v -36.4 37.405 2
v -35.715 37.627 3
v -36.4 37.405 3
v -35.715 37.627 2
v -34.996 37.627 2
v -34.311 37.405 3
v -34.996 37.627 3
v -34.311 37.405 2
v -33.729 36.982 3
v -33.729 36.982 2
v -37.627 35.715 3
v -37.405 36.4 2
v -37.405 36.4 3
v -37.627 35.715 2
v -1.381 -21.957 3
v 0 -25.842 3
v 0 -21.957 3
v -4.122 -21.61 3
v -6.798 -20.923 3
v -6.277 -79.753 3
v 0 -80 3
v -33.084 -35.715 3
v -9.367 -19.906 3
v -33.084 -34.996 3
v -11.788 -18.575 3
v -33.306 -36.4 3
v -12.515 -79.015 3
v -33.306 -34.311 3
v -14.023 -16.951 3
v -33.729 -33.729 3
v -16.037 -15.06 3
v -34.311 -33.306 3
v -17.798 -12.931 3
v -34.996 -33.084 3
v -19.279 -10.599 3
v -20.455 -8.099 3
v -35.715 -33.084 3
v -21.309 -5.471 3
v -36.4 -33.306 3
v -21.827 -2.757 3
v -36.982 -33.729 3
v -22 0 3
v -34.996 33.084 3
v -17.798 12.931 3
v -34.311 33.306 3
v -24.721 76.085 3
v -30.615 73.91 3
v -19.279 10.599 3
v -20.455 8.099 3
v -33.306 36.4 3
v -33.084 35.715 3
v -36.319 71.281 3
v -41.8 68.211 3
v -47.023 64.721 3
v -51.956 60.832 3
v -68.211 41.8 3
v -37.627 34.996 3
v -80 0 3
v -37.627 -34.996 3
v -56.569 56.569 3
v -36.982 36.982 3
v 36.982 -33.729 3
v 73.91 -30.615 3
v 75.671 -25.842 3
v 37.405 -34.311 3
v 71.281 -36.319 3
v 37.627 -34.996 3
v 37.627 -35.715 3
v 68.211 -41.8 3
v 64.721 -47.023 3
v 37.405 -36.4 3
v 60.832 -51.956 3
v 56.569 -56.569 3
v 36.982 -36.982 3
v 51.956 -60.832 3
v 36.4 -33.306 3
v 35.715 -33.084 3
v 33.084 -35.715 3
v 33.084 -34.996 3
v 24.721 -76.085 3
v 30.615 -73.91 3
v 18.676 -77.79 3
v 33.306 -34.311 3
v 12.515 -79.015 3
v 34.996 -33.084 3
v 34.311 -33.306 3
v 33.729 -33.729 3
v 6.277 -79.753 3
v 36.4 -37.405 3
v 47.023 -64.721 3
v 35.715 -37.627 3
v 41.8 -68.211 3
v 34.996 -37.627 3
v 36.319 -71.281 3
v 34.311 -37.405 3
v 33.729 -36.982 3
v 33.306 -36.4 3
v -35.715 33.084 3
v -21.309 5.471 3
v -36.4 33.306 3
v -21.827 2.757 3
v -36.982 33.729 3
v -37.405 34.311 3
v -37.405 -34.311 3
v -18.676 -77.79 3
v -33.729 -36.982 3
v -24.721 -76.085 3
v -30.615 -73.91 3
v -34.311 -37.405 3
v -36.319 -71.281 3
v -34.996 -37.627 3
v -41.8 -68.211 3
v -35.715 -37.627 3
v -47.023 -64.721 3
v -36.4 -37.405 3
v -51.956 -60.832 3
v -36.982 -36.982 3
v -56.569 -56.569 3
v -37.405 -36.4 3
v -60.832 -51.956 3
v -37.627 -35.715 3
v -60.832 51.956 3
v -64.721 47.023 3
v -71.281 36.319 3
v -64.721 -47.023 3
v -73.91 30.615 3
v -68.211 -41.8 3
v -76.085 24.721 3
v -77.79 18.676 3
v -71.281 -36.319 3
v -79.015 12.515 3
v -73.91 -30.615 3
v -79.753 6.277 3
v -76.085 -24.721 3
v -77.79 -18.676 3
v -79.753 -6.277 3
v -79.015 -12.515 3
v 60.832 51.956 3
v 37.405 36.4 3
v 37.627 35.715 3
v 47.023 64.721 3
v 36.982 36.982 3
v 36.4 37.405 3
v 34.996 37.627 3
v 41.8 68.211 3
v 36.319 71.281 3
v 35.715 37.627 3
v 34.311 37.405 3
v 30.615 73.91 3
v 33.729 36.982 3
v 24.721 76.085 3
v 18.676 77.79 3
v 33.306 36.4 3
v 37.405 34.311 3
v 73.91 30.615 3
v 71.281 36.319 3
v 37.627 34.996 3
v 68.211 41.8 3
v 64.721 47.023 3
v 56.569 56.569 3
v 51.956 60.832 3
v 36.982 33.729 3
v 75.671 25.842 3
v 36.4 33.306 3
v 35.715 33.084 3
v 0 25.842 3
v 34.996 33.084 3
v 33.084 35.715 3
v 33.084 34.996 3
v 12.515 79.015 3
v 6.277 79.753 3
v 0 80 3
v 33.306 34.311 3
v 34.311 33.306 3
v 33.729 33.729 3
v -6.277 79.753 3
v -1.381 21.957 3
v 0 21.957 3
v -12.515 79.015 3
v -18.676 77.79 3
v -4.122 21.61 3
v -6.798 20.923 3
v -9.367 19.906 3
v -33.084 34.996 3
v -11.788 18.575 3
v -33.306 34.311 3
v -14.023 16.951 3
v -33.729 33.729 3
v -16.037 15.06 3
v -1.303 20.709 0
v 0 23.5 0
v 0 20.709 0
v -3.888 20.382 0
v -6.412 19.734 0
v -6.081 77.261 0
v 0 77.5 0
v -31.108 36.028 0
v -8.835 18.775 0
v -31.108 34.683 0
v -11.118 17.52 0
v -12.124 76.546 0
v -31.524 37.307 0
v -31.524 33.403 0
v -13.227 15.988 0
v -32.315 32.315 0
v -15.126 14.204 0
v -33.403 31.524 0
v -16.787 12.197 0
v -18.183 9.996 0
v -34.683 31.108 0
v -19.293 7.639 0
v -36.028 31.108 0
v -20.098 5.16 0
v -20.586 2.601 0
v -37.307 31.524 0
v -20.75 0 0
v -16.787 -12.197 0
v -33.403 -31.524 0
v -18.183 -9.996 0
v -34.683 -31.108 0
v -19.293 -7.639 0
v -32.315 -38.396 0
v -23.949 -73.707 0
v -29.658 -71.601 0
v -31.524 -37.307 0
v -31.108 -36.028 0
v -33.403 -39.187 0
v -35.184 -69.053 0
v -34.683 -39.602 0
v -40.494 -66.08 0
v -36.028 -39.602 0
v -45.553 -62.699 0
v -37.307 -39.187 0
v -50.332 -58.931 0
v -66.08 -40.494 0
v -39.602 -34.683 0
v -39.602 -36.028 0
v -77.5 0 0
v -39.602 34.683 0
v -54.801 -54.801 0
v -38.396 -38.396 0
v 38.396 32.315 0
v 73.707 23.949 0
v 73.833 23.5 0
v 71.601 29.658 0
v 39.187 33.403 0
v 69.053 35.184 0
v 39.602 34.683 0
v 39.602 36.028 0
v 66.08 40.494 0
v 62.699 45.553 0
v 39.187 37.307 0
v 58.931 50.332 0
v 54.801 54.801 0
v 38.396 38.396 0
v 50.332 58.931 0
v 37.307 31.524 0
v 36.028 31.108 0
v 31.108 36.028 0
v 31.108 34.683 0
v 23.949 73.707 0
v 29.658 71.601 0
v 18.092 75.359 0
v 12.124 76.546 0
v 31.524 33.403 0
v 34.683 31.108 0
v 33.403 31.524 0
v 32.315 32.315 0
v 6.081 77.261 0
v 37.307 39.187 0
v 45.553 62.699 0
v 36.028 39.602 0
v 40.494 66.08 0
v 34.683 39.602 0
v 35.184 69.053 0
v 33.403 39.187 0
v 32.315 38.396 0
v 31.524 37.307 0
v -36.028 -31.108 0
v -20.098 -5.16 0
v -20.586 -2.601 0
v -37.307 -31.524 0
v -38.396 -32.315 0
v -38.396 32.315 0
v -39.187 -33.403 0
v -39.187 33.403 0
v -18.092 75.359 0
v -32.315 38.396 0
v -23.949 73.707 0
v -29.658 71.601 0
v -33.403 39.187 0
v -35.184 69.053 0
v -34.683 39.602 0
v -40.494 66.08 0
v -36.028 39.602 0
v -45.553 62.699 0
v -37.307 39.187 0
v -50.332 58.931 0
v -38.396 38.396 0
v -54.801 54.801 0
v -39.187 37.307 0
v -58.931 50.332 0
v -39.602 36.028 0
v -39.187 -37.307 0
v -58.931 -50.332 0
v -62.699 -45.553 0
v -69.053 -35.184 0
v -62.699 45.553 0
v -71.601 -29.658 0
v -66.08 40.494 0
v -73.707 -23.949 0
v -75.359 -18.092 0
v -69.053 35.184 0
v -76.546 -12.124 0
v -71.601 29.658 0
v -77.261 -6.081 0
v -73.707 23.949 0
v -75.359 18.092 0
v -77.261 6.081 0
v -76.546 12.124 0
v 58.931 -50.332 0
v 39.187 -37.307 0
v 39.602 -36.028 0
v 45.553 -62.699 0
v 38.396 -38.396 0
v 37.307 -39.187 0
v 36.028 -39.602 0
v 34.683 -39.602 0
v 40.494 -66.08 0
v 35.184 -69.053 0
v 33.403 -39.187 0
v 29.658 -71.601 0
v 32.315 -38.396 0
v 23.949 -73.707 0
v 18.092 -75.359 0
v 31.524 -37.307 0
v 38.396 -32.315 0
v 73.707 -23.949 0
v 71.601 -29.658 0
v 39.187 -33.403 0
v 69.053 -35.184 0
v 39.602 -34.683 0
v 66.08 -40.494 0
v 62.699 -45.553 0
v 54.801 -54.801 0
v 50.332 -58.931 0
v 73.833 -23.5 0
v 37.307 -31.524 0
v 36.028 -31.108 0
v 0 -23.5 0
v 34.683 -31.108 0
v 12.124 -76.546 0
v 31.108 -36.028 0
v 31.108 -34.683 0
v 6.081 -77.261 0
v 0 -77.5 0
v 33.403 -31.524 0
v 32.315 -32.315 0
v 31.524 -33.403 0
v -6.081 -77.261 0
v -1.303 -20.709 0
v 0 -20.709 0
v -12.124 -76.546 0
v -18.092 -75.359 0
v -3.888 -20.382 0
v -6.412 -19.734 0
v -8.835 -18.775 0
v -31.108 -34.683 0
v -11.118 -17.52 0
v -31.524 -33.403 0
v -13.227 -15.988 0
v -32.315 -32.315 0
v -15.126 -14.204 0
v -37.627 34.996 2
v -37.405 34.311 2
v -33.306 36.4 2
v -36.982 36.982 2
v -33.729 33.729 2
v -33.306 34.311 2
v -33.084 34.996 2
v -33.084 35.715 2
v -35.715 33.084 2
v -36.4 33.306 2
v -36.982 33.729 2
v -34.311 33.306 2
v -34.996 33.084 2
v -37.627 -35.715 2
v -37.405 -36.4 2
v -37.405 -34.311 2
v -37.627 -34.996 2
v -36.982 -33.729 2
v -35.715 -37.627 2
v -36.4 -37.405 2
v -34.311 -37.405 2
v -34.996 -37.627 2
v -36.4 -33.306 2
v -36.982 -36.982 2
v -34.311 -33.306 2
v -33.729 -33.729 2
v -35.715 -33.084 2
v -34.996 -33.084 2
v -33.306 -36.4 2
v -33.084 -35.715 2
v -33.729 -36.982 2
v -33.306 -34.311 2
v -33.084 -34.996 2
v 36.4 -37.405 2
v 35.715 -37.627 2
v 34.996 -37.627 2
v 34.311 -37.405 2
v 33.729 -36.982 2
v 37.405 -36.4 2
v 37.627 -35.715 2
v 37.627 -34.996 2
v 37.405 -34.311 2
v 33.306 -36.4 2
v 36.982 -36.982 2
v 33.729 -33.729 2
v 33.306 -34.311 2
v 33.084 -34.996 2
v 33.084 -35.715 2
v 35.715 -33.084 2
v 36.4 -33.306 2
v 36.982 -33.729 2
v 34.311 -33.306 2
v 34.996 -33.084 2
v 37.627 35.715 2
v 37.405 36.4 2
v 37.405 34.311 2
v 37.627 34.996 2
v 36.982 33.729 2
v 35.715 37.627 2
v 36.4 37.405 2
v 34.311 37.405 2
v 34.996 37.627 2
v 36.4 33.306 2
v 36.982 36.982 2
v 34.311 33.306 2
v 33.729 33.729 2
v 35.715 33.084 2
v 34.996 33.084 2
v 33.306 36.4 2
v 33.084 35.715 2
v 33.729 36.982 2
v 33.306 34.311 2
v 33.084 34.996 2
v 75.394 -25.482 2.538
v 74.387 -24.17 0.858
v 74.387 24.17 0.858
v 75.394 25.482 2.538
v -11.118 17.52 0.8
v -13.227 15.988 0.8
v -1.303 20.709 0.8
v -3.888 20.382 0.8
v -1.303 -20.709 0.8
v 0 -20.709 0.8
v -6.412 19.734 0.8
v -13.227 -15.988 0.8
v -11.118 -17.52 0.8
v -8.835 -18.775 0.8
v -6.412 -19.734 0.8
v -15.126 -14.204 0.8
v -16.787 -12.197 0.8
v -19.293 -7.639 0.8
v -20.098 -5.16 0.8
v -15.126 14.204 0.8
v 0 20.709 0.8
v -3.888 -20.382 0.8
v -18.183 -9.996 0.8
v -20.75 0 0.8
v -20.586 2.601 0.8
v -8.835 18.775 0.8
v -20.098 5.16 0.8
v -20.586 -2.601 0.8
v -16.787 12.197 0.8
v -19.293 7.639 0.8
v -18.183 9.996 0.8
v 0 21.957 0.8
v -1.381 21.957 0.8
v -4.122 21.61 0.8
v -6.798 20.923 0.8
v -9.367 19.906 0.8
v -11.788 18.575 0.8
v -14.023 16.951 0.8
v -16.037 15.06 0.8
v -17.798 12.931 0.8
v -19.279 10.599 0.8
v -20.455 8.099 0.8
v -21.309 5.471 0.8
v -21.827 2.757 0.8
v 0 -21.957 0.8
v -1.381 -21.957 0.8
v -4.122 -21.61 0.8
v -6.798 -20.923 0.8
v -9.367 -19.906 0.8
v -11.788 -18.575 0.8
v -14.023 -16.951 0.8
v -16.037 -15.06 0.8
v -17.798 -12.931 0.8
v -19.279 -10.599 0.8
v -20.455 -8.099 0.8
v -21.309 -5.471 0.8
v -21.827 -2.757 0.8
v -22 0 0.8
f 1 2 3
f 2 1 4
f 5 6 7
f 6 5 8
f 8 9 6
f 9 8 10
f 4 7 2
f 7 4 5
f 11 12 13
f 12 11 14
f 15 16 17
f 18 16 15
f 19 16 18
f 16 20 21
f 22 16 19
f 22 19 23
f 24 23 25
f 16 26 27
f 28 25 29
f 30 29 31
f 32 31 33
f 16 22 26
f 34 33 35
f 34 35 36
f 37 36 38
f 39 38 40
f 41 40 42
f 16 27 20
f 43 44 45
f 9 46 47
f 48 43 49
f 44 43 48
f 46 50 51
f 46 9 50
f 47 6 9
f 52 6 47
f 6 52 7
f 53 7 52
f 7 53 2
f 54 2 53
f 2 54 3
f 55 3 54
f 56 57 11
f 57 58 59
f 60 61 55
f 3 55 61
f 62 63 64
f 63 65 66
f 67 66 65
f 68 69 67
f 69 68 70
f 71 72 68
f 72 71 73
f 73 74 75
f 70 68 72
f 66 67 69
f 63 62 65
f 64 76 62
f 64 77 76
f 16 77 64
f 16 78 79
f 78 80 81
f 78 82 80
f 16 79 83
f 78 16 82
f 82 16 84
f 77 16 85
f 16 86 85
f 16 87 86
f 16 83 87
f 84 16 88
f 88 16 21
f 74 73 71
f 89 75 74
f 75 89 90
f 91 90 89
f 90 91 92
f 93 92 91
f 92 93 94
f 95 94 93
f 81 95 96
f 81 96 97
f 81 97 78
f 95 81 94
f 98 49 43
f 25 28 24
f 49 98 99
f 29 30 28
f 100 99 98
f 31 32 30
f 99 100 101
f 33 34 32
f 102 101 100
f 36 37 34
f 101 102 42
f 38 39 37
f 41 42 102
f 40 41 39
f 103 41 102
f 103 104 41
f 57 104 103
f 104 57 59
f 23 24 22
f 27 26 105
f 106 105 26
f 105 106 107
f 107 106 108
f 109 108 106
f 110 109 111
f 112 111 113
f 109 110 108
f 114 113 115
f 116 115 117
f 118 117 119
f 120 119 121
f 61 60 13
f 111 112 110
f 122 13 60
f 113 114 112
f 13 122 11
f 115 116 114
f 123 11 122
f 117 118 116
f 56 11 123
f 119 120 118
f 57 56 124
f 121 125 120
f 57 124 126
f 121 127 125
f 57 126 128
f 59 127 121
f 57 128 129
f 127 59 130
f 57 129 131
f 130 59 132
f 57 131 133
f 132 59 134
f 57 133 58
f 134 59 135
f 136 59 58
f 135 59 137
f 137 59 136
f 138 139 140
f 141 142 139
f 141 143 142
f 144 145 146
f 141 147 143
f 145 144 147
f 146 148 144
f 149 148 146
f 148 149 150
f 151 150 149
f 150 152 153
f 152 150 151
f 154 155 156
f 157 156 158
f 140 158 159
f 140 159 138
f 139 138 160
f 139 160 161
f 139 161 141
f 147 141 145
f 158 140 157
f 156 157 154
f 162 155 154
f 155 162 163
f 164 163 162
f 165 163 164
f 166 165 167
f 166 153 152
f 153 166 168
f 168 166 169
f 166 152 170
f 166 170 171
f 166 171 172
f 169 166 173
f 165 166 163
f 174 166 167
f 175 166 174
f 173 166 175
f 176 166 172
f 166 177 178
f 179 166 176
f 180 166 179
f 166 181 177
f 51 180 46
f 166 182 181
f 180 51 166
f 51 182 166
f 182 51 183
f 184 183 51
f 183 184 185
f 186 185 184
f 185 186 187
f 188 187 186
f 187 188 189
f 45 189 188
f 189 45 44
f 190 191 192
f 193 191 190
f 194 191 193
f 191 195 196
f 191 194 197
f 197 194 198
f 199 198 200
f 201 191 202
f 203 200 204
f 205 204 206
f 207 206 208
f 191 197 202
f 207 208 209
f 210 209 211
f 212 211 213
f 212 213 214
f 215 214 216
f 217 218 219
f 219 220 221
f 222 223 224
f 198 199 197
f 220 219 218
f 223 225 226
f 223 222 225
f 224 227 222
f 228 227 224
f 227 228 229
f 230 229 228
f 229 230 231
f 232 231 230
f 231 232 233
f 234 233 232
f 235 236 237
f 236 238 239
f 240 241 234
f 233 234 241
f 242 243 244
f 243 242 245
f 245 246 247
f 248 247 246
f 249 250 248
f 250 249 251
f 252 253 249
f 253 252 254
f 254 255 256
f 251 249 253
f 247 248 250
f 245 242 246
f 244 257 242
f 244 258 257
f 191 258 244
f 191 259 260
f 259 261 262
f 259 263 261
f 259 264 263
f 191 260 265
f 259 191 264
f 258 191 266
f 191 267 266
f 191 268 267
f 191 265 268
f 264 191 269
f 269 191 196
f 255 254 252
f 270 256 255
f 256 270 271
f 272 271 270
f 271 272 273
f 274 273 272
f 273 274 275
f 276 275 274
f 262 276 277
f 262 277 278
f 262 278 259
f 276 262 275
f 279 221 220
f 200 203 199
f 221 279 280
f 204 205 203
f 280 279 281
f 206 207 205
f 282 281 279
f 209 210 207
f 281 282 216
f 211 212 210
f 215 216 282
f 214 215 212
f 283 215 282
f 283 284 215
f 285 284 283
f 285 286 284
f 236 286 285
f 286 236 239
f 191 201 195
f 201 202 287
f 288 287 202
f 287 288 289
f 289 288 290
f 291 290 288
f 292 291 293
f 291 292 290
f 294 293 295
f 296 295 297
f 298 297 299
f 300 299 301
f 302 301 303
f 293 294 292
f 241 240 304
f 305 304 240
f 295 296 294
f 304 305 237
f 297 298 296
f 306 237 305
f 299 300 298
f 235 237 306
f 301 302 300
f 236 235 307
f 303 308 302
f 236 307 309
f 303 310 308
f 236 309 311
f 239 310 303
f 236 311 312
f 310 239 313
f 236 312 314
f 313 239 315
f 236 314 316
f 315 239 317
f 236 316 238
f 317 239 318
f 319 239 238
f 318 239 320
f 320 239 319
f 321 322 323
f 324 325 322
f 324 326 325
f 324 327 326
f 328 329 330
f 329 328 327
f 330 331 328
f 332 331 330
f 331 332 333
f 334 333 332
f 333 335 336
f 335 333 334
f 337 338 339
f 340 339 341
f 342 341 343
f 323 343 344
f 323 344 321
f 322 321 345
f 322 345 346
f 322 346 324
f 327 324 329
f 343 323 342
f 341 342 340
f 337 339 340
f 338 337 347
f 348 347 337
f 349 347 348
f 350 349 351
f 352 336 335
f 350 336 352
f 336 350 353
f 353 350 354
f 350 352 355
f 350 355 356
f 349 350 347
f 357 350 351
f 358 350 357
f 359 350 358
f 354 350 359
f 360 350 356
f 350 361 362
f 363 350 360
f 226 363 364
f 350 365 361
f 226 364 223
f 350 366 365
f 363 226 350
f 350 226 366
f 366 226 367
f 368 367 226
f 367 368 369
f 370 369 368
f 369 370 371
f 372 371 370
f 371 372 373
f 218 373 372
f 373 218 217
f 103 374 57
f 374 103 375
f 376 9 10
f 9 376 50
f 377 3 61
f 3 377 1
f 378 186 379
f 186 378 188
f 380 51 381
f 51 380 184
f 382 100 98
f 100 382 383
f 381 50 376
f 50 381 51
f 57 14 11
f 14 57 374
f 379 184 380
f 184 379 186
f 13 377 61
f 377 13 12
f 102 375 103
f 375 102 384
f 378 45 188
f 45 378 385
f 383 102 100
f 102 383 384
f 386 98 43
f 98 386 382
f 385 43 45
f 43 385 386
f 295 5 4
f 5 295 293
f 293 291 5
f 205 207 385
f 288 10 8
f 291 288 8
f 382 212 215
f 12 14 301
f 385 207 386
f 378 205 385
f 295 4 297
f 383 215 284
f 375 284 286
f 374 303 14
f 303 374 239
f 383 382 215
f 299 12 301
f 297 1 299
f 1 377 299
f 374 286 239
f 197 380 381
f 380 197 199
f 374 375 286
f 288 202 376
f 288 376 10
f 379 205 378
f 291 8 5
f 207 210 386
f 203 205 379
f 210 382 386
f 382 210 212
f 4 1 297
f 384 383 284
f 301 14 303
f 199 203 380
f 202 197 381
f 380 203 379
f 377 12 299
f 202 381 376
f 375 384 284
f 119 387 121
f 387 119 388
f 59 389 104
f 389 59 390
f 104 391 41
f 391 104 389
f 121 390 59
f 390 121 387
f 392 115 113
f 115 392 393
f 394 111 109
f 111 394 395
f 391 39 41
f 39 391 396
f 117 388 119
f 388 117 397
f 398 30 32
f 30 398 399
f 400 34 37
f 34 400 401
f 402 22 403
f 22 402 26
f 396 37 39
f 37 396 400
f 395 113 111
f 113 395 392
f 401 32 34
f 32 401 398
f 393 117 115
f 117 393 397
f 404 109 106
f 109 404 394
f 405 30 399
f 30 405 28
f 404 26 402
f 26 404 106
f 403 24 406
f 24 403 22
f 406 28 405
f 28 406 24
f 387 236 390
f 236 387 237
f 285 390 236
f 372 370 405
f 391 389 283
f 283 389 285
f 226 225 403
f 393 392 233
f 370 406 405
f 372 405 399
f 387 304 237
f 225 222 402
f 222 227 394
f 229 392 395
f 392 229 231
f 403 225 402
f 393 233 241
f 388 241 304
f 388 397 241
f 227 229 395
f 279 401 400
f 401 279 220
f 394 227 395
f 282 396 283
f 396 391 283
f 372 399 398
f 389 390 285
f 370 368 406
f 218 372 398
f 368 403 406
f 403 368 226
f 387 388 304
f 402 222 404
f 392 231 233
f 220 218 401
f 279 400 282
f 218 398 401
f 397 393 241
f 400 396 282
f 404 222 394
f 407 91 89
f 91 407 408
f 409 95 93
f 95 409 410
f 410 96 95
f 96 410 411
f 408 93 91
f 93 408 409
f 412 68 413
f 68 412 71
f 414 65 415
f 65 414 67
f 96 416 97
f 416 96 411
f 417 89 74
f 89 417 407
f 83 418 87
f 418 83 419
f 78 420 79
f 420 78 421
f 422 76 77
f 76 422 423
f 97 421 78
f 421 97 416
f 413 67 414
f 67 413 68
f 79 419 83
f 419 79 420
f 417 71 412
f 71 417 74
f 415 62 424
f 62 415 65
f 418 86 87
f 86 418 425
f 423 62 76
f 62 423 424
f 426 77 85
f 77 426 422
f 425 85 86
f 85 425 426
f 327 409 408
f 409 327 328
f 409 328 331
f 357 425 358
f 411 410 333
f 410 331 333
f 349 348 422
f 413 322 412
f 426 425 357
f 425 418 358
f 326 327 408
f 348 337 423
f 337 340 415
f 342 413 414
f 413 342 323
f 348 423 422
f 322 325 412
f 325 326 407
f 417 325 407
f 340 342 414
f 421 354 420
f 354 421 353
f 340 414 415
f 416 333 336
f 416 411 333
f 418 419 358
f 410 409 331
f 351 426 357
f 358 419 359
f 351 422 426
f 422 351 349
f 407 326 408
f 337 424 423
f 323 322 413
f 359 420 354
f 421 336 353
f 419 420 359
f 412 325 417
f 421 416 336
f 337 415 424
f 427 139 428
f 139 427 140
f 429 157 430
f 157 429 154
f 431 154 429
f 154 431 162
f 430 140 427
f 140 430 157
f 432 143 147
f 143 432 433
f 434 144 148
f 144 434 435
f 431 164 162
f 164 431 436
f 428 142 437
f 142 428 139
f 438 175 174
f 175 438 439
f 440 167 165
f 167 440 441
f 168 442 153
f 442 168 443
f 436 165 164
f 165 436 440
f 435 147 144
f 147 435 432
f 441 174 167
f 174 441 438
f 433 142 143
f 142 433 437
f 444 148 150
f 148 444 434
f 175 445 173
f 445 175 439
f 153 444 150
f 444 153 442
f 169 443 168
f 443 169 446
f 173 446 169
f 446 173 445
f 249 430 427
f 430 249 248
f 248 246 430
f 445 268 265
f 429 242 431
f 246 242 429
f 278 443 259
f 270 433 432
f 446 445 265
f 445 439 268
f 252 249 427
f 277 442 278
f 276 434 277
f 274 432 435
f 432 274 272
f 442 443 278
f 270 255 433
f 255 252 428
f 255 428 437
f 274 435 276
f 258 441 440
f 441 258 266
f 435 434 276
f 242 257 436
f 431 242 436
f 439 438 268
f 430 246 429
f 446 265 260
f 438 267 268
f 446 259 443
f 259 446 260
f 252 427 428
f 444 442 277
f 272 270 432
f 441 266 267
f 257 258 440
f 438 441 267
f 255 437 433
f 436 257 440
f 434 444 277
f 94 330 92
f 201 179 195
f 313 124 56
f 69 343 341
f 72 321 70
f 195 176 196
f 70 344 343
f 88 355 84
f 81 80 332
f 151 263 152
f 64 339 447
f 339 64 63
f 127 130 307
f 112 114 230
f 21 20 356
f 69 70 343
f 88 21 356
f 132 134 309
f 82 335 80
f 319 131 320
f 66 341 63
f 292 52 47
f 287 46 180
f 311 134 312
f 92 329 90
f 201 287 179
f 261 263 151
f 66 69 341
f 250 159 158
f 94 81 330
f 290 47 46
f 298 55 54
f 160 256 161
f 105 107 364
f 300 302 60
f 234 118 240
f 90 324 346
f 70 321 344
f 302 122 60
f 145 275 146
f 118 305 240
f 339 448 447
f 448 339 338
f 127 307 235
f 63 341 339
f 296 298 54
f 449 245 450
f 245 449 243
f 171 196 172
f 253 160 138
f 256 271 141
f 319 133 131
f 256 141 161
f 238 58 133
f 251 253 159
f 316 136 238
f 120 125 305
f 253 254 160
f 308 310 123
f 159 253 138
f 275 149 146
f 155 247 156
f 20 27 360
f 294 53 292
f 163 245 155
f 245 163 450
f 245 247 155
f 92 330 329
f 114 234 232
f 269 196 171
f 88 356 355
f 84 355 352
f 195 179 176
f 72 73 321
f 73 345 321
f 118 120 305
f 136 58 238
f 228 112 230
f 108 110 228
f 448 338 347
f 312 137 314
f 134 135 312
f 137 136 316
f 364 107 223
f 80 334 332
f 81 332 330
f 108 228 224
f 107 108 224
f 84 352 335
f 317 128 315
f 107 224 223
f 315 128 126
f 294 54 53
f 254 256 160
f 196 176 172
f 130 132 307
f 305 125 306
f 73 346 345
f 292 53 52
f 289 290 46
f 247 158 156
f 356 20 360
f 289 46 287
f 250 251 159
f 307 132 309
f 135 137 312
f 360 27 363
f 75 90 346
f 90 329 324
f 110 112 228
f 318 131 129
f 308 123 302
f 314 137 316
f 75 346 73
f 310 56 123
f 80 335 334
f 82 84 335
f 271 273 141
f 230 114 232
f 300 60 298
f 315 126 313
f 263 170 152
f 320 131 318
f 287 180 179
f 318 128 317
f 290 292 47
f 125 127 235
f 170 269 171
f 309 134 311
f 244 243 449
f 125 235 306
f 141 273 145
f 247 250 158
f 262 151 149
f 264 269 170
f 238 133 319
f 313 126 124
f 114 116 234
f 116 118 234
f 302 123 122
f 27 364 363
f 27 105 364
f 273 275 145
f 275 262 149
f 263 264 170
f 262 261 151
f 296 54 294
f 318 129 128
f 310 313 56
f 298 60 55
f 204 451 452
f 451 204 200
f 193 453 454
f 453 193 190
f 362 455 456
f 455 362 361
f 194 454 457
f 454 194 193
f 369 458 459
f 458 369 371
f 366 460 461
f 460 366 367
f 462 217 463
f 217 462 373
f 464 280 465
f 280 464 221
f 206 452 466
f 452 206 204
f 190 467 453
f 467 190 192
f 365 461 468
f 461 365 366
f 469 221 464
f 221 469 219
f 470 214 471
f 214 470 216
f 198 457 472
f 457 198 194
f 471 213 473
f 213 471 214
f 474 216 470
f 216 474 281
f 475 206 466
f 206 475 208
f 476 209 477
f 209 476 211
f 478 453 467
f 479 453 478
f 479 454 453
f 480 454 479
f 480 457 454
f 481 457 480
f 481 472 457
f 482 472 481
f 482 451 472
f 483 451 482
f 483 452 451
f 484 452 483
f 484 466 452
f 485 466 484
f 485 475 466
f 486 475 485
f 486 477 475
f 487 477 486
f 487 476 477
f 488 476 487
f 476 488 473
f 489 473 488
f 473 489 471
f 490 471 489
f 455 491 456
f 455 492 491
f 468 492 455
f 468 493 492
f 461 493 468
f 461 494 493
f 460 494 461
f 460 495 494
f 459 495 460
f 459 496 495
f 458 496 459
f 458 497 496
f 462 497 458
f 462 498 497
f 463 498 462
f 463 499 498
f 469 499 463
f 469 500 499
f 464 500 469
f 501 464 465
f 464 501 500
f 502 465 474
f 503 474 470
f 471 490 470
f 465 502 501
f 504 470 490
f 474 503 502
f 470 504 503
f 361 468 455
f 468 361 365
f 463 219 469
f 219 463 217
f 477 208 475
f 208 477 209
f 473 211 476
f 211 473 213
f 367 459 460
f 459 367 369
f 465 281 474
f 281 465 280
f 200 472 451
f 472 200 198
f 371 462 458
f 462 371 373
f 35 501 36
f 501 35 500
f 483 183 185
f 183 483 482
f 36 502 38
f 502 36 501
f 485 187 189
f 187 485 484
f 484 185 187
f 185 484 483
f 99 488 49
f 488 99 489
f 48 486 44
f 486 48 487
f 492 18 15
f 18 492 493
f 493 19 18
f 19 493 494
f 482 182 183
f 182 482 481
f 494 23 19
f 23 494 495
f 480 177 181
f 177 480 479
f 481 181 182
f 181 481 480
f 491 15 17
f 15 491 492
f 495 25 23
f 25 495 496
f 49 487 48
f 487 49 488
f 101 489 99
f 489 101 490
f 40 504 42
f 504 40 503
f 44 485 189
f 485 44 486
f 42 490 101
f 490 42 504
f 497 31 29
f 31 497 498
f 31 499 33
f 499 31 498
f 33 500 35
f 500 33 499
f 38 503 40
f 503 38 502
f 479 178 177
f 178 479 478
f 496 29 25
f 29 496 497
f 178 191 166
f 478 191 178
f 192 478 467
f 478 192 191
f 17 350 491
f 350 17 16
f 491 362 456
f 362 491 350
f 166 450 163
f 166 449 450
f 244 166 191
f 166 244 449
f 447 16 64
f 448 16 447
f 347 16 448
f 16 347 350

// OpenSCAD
hn = 0.8; // neck height
dn = 41.5; // neck diameter
hb = 3; // body height
db = 160; // body height

dd = 44; // non-neck diameter (the space for the bottom of the homepod)

ds = 4.6; // diameter of the screw
dls = 50; // diameter of the screw holes

module screw_hole() {
     translate([0,dls,0]) union() {
         cylinder(h=hb, d=ds, $fn=20);
         hf = 2; // fillet height
         cylinder(h=hf, d1=ds+hf*2, d2=ds, $fn=20);
     }
}

module half_space() {
    translate([0,-50,0]) cube([100,100,100]);
}

wp = 47; // width of the insertion plate

module mask(shrink=0) {
    w = wp - shrink;// the width of the insert plate
    linear_extrude(hb+0.01, scale=[1,1.1]) translate([0,-w/2,0]) square([db,w]);
}



module body() {
    difference() {
        $fn=50;
        cylinder(h=hb, d2=db, d1=db-5, $fn=80);
        cylinder(h=hn, d=dn);
        translate([0,0,hn]) cylinder(h=hb-hn, d=dd);
        
        for(deg=[0,90,180,270]){
            rotate([0,0,deg+45]) screw_hole();
        }
        
        // half_space();
    }
}

module plate_wire_hole() {
    large = 100;
    dd = 6;
    cylinder(d=dd,h=large, center=true, $fn=20);
    translate([0,large/2,0]) cube([dd, large, large], center=true);
    
}


// main body
difference() {
    body();
    mask();
}

// plate
*intersection() {
    body();
    difference() {
        mask(0.1);
        translate([30,wp/2-3,0]) plate_wire_hole();
        
    }
}
